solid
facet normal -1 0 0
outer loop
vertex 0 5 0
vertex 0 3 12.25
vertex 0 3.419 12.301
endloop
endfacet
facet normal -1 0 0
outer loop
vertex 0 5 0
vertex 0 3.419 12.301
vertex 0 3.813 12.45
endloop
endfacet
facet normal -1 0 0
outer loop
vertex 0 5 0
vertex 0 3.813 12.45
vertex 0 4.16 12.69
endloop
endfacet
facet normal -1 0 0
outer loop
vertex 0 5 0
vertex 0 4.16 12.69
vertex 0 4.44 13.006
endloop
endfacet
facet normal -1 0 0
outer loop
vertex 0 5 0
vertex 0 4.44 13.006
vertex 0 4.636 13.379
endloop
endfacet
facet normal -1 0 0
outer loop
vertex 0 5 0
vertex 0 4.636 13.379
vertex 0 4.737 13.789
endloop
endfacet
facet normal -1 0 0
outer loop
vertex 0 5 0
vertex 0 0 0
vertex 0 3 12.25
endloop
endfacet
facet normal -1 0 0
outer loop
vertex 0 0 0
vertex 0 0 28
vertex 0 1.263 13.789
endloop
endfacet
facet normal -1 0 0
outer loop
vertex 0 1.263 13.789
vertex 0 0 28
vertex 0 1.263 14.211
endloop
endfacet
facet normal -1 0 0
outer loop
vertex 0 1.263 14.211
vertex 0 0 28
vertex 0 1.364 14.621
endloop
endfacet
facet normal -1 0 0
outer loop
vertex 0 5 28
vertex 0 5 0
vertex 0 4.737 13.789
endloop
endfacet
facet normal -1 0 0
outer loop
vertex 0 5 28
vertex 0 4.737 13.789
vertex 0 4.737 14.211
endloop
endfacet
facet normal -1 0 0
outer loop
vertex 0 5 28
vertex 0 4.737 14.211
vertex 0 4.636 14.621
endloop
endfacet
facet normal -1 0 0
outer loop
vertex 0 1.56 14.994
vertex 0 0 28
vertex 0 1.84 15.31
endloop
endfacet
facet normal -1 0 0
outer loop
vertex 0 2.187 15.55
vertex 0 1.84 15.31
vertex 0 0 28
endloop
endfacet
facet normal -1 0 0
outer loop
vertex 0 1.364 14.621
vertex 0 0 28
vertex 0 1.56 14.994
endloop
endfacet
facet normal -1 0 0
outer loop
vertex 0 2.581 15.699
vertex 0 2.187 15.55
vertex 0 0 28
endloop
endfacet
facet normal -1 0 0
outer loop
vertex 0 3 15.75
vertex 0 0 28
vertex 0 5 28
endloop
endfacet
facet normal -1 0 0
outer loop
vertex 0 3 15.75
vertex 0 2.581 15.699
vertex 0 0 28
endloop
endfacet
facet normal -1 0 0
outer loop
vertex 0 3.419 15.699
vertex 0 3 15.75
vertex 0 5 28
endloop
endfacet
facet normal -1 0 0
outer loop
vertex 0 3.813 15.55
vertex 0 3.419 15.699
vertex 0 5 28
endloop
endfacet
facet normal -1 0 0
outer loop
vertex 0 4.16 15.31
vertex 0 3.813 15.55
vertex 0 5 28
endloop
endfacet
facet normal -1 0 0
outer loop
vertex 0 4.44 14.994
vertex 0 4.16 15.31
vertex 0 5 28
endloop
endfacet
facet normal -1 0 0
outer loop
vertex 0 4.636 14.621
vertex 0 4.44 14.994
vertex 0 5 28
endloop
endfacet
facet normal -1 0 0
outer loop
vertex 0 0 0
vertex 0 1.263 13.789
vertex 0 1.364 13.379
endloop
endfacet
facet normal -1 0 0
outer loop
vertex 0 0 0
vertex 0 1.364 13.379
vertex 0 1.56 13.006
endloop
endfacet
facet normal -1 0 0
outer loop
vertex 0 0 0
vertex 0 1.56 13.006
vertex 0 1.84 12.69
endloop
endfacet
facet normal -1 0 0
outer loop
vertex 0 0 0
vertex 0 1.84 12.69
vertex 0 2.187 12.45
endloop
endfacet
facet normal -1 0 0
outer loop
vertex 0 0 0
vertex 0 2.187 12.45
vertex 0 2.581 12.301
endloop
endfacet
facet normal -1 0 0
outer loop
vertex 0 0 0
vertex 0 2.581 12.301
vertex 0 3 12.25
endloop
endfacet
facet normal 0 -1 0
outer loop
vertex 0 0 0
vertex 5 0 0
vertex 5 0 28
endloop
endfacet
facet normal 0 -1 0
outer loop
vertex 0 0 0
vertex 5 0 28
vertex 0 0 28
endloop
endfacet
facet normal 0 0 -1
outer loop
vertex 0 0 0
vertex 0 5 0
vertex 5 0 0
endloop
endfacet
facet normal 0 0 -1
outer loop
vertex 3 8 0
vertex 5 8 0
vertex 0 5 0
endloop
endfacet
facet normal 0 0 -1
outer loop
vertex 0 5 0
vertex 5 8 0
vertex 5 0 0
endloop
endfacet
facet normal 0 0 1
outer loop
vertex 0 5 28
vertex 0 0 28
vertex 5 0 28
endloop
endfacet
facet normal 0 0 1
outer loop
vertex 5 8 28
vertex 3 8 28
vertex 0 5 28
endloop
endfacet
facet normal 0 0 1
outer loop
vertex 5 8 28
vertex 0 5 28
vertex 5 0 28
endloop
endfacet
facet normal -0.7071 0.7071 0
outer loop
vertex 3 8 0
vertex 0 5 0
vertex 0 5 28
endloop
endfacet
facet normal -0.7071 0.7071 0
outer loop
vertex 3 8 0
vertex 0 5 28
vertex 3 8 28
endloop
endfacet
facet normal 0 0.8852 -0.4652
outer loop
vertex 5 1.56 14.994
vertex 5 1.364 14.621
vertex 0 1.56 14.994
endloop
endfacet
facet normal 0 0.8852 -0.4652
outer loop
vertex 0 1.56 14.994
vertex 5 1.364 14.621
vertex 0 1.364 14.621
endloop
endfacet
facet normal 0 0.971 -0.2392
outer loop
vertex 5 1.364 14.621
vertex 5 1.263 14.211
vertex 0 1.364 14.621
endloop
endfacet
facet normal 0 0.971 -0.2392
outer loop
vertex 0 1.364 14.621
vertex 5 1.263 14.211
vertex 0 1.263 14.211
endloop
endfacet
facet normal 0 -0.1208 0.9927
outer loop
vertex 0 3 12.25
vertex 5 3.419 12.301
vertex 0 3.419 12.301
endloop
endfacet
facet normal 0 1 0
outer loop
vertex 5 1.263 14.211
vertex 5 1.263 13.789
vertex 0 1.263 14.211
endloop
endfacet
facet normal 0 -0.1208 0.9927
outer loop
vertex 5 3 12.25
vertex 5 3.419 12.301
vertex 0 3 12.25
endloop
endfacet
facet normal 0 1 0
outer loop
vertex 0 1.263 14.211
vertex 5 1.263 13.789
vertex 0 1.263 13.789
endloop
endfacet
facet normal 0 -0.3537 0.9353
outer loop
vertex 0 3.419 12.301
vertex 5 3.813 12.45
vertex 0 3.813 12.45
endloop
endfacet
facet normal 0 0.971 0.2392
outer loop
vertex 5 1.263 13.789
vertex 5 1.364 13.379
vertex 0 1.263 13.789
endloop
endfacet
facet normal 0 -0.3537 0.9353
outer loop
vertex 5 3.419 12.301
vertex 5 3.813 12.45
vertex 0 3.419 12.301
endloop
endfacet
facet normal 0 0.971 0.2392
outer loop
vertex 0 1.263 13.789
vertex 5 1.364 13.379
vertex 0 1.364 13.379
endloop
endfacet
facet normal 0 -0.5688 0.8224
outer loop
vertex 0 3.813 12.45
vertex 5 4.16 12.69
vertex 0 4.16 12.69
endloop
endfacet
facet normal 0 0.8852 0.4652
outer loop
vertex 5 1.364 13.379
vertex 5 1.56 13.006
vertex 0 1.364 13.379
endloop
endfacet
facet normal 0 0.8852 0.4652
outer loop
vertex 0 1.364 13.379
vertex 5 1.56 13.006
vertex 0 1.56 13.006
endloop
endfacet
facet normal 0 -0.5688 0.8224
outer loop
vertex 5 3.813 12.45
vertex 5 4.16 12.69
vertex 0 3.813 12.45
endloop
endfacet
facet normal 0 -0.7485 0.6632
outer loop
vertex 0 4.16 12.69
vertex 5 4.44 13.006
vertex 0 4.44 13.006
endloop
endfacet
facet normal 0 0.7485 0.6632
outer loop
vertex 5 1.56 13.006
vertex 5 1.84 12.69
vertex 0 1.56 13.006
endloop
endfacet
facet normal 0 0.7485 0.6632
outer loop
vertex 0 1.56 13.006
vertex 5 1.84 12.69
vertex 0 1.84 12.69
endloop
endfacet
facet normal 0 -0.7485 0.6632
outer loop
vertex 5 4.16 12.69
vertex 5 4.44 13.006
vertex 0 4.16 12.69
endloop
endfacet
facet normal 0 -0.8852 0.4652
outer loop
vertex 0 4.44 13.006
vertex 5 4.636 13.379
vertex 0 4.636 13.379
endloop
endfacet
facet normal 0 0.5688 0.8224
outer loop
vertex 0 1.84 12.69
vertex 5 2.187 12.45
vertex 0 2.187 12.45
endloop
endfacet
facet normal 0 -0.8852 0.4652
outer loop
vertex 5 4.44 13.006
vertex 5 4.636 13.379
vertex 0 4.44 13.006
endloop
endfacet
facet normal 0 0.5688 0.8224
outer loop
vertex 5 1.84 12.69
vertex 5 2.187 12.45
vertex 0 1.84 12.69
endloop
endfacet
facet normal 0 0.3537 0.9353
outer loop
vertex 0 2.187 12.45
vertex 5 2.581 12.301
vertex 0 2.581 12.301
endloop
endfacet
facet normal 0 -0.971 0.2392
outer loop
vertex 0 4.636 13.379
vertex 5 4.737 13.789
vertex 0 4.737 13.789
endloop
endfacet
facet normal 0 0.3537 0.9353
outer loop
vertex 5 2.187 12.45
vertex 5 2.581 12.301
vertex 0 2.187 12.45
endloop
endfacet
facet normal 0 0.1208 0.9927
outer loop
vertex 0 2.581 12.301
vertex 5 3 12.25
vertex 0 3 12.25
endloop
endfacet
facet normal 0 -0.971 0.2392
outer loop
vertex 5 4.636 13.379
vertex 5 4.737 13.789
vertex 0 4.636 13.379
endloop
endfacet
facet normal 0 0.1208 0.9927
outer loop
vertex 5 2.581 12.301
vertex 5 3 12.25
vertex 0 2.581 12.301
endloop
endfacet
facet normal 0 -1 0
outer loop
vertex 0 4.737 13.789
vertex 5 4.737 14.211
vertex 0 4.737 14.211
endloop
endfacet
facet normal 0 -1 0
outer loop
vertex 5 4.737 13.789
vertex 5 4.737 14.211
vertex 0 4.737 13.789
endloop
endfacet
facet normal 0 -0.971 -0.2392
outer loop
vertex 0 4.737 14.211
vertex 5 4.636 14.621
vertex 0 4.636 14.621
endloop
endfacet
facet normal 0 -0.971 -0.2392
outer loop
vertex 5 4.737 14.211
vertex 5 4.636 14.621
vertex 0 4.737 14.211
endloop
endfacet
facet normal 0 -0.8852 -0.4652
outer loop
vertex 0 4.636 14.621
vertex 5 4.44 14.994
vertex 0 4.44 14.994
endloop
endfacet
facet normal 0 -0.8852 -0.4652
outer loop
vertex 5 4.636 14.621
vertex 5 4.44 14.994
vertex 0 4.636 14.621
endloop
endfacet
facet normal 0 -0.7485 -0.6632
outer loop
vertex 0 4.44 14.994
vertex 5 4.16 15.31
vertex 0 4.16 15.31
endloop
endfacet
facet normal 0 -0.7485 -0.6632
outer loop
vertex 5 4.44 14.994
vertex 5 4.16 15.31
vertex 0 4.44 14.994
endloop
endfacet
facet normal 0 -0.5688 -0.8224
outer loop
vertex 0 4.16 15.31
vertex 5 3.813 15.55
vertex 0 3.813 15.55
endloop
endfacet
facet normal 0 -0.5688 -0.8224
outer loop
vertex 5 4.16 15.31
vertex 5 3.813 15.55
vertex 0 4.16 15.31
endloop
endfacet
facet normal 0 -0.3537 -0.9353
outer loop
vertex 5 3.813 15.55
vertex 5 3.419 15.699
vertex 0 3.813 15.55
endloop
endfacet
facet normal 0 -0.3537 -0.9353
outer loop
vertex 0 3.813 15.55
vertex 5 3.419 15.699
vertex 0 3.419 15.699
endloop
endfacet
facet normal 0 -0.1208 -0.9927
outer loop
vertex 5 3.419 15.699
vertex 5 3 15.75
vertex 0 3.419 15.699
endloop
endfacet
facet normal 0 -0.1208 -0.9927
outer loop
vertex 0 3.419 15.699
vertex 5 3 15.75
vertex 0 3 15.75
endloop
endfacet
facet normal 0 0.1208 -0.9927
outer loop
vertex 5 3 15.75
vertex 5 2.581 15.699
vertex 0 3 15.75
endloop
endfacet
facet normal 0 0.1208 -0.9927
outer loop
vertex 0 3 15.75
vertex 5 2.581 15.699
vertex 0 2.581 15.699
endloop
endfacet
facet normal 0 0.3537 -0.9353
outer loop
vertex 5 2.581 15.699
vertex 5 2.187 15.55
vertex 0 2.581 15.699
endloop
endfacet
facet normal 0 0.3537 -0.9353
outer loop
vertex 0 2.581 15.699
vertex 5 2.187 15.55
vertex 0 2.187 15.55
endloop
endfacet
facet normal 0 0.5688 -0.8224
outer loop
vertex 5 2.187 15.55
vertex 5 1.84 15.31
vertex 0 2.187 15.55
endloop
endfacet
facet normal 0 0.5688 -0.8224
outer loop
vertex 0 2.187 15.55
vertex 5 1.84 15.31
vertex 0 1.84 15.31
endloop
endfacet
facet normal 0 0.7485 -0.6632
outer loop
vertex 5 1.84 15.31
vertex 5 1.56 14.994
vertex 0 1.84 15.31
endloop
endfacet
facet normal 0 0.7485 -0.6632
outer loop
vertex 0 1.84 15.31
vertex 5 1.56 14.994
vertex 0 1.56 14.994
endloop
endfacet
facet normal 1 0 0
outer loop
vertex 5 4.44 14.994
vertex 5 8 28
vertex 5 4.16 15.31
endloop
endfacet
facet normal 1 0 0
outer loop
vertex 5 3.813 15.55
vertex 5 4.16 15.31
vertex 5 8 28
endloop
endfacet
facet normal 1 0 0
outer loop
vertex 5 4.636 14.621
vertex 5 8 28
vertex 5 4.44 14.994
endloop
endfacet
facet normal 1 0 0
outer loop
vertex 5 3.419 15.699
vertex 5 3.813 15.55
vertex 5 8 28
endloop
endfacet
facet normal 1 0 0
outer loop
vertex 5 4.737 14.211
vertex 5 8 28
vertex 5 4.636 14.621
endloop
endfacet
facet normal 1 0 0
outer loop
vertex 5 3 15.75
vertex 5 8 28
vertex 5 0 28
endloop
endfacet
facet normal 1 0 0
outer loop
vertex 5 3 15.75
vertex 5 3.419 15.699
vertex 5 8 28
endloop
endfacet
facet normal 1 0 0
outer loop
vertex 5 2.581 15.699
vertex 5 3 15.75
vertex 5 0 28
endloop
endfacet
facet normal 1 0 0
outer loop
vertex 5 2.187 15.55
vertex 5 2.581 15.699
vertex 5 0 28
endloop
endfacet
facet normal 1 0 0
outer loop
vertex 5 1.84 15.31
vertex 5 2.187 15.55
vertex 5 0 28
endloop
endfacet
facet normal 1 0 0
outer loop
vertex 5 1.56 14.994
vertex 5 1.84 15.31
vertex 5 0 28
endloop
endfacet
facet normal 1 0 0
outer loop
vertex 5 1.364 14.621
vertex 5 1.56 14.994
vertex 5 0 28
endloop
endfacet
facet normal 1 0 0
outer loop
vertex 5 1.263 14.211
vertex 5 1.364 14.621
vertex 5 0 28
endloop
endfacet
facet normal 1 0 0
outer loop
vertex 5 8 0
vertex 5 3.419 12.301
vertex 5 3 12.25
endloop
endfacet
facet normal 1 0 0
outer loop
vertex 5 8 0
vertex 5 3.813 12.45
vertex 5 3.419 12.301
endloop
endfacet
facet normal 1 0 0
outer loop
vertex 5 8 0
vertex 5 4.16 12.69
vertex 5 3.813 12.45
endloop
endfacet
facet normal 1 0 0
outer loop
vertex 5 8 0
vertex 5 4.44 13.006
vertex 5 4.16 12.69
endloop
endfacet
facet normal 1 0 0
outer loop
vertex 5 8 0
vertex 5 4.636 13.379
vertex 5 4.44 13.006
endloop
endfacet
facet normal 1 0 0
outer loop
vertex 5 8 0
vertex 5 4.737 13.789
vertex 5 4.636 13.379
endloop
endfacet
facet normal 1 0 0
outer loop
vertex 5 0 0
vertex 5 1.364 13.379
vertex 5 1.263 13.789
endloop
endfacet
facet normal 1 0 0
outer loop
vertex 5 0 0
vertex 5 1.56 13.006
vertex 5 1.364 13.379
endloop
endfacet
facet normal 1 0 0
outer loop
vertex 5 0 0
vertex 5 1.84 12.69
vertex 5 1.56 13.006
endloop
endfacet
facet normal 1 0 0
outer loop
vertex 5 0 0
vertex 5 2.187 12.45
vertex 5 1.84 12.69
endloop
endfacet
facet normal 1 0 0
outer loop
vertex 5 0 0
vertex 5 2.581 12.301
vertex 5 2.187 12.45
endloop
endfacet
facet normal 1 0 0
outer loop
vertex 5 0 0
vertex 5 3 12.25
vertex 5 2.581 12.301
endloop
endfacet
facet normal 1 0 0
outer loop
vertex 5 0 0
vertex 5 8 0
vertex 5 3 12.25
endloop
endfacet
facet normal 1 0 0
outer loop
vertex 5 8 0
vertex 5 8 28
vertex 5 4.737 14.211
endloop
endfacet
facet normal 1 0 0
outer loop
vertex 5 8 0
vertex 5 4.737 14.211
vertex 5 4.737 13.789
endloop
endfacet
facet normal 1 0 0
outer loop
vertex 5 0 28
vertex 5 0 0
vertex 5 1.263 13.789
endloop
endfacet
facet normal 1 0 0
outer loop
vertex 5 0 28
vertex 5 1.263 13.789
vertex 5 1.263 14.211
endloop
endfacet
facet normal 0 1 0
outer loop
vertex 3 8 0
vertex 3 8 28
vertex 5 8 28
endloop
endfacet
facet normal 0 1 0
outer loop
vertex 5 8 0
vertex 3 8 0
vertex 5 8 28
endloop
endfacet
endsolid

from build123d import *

# Parameters (mm, degrees)
CYLINDER_R     = 1.75
CYLINDER_DEPTH = 5
EXTRUDE_DEPTH  = 28


with BuildPart() as cylindre:
    # Cylinder → Cylinder (new body)
    with BuildSketch(Plane(origin=(0, 3, 14), x_dir=(0, 0, -1), z_dir=(1, 0, 0))):
        Circle(CYLINDER_R)
    extrude(amount=CYLINDER_DEPTH)


with BuildPart() as cut:
    # Sketch → Extrude (new body)
    with BuildSketch(Plane.XY):
        Polygon((0, 0), (0, 5), (3, 8), (5, 8), (5, 0), align=None)
    extrude(amount=EXTRUDE_DEPTH)

    # Cut: cut Cylindre
    add(cylindre.part, mode=Mode.SUBTRACT)


solid = cut.part
